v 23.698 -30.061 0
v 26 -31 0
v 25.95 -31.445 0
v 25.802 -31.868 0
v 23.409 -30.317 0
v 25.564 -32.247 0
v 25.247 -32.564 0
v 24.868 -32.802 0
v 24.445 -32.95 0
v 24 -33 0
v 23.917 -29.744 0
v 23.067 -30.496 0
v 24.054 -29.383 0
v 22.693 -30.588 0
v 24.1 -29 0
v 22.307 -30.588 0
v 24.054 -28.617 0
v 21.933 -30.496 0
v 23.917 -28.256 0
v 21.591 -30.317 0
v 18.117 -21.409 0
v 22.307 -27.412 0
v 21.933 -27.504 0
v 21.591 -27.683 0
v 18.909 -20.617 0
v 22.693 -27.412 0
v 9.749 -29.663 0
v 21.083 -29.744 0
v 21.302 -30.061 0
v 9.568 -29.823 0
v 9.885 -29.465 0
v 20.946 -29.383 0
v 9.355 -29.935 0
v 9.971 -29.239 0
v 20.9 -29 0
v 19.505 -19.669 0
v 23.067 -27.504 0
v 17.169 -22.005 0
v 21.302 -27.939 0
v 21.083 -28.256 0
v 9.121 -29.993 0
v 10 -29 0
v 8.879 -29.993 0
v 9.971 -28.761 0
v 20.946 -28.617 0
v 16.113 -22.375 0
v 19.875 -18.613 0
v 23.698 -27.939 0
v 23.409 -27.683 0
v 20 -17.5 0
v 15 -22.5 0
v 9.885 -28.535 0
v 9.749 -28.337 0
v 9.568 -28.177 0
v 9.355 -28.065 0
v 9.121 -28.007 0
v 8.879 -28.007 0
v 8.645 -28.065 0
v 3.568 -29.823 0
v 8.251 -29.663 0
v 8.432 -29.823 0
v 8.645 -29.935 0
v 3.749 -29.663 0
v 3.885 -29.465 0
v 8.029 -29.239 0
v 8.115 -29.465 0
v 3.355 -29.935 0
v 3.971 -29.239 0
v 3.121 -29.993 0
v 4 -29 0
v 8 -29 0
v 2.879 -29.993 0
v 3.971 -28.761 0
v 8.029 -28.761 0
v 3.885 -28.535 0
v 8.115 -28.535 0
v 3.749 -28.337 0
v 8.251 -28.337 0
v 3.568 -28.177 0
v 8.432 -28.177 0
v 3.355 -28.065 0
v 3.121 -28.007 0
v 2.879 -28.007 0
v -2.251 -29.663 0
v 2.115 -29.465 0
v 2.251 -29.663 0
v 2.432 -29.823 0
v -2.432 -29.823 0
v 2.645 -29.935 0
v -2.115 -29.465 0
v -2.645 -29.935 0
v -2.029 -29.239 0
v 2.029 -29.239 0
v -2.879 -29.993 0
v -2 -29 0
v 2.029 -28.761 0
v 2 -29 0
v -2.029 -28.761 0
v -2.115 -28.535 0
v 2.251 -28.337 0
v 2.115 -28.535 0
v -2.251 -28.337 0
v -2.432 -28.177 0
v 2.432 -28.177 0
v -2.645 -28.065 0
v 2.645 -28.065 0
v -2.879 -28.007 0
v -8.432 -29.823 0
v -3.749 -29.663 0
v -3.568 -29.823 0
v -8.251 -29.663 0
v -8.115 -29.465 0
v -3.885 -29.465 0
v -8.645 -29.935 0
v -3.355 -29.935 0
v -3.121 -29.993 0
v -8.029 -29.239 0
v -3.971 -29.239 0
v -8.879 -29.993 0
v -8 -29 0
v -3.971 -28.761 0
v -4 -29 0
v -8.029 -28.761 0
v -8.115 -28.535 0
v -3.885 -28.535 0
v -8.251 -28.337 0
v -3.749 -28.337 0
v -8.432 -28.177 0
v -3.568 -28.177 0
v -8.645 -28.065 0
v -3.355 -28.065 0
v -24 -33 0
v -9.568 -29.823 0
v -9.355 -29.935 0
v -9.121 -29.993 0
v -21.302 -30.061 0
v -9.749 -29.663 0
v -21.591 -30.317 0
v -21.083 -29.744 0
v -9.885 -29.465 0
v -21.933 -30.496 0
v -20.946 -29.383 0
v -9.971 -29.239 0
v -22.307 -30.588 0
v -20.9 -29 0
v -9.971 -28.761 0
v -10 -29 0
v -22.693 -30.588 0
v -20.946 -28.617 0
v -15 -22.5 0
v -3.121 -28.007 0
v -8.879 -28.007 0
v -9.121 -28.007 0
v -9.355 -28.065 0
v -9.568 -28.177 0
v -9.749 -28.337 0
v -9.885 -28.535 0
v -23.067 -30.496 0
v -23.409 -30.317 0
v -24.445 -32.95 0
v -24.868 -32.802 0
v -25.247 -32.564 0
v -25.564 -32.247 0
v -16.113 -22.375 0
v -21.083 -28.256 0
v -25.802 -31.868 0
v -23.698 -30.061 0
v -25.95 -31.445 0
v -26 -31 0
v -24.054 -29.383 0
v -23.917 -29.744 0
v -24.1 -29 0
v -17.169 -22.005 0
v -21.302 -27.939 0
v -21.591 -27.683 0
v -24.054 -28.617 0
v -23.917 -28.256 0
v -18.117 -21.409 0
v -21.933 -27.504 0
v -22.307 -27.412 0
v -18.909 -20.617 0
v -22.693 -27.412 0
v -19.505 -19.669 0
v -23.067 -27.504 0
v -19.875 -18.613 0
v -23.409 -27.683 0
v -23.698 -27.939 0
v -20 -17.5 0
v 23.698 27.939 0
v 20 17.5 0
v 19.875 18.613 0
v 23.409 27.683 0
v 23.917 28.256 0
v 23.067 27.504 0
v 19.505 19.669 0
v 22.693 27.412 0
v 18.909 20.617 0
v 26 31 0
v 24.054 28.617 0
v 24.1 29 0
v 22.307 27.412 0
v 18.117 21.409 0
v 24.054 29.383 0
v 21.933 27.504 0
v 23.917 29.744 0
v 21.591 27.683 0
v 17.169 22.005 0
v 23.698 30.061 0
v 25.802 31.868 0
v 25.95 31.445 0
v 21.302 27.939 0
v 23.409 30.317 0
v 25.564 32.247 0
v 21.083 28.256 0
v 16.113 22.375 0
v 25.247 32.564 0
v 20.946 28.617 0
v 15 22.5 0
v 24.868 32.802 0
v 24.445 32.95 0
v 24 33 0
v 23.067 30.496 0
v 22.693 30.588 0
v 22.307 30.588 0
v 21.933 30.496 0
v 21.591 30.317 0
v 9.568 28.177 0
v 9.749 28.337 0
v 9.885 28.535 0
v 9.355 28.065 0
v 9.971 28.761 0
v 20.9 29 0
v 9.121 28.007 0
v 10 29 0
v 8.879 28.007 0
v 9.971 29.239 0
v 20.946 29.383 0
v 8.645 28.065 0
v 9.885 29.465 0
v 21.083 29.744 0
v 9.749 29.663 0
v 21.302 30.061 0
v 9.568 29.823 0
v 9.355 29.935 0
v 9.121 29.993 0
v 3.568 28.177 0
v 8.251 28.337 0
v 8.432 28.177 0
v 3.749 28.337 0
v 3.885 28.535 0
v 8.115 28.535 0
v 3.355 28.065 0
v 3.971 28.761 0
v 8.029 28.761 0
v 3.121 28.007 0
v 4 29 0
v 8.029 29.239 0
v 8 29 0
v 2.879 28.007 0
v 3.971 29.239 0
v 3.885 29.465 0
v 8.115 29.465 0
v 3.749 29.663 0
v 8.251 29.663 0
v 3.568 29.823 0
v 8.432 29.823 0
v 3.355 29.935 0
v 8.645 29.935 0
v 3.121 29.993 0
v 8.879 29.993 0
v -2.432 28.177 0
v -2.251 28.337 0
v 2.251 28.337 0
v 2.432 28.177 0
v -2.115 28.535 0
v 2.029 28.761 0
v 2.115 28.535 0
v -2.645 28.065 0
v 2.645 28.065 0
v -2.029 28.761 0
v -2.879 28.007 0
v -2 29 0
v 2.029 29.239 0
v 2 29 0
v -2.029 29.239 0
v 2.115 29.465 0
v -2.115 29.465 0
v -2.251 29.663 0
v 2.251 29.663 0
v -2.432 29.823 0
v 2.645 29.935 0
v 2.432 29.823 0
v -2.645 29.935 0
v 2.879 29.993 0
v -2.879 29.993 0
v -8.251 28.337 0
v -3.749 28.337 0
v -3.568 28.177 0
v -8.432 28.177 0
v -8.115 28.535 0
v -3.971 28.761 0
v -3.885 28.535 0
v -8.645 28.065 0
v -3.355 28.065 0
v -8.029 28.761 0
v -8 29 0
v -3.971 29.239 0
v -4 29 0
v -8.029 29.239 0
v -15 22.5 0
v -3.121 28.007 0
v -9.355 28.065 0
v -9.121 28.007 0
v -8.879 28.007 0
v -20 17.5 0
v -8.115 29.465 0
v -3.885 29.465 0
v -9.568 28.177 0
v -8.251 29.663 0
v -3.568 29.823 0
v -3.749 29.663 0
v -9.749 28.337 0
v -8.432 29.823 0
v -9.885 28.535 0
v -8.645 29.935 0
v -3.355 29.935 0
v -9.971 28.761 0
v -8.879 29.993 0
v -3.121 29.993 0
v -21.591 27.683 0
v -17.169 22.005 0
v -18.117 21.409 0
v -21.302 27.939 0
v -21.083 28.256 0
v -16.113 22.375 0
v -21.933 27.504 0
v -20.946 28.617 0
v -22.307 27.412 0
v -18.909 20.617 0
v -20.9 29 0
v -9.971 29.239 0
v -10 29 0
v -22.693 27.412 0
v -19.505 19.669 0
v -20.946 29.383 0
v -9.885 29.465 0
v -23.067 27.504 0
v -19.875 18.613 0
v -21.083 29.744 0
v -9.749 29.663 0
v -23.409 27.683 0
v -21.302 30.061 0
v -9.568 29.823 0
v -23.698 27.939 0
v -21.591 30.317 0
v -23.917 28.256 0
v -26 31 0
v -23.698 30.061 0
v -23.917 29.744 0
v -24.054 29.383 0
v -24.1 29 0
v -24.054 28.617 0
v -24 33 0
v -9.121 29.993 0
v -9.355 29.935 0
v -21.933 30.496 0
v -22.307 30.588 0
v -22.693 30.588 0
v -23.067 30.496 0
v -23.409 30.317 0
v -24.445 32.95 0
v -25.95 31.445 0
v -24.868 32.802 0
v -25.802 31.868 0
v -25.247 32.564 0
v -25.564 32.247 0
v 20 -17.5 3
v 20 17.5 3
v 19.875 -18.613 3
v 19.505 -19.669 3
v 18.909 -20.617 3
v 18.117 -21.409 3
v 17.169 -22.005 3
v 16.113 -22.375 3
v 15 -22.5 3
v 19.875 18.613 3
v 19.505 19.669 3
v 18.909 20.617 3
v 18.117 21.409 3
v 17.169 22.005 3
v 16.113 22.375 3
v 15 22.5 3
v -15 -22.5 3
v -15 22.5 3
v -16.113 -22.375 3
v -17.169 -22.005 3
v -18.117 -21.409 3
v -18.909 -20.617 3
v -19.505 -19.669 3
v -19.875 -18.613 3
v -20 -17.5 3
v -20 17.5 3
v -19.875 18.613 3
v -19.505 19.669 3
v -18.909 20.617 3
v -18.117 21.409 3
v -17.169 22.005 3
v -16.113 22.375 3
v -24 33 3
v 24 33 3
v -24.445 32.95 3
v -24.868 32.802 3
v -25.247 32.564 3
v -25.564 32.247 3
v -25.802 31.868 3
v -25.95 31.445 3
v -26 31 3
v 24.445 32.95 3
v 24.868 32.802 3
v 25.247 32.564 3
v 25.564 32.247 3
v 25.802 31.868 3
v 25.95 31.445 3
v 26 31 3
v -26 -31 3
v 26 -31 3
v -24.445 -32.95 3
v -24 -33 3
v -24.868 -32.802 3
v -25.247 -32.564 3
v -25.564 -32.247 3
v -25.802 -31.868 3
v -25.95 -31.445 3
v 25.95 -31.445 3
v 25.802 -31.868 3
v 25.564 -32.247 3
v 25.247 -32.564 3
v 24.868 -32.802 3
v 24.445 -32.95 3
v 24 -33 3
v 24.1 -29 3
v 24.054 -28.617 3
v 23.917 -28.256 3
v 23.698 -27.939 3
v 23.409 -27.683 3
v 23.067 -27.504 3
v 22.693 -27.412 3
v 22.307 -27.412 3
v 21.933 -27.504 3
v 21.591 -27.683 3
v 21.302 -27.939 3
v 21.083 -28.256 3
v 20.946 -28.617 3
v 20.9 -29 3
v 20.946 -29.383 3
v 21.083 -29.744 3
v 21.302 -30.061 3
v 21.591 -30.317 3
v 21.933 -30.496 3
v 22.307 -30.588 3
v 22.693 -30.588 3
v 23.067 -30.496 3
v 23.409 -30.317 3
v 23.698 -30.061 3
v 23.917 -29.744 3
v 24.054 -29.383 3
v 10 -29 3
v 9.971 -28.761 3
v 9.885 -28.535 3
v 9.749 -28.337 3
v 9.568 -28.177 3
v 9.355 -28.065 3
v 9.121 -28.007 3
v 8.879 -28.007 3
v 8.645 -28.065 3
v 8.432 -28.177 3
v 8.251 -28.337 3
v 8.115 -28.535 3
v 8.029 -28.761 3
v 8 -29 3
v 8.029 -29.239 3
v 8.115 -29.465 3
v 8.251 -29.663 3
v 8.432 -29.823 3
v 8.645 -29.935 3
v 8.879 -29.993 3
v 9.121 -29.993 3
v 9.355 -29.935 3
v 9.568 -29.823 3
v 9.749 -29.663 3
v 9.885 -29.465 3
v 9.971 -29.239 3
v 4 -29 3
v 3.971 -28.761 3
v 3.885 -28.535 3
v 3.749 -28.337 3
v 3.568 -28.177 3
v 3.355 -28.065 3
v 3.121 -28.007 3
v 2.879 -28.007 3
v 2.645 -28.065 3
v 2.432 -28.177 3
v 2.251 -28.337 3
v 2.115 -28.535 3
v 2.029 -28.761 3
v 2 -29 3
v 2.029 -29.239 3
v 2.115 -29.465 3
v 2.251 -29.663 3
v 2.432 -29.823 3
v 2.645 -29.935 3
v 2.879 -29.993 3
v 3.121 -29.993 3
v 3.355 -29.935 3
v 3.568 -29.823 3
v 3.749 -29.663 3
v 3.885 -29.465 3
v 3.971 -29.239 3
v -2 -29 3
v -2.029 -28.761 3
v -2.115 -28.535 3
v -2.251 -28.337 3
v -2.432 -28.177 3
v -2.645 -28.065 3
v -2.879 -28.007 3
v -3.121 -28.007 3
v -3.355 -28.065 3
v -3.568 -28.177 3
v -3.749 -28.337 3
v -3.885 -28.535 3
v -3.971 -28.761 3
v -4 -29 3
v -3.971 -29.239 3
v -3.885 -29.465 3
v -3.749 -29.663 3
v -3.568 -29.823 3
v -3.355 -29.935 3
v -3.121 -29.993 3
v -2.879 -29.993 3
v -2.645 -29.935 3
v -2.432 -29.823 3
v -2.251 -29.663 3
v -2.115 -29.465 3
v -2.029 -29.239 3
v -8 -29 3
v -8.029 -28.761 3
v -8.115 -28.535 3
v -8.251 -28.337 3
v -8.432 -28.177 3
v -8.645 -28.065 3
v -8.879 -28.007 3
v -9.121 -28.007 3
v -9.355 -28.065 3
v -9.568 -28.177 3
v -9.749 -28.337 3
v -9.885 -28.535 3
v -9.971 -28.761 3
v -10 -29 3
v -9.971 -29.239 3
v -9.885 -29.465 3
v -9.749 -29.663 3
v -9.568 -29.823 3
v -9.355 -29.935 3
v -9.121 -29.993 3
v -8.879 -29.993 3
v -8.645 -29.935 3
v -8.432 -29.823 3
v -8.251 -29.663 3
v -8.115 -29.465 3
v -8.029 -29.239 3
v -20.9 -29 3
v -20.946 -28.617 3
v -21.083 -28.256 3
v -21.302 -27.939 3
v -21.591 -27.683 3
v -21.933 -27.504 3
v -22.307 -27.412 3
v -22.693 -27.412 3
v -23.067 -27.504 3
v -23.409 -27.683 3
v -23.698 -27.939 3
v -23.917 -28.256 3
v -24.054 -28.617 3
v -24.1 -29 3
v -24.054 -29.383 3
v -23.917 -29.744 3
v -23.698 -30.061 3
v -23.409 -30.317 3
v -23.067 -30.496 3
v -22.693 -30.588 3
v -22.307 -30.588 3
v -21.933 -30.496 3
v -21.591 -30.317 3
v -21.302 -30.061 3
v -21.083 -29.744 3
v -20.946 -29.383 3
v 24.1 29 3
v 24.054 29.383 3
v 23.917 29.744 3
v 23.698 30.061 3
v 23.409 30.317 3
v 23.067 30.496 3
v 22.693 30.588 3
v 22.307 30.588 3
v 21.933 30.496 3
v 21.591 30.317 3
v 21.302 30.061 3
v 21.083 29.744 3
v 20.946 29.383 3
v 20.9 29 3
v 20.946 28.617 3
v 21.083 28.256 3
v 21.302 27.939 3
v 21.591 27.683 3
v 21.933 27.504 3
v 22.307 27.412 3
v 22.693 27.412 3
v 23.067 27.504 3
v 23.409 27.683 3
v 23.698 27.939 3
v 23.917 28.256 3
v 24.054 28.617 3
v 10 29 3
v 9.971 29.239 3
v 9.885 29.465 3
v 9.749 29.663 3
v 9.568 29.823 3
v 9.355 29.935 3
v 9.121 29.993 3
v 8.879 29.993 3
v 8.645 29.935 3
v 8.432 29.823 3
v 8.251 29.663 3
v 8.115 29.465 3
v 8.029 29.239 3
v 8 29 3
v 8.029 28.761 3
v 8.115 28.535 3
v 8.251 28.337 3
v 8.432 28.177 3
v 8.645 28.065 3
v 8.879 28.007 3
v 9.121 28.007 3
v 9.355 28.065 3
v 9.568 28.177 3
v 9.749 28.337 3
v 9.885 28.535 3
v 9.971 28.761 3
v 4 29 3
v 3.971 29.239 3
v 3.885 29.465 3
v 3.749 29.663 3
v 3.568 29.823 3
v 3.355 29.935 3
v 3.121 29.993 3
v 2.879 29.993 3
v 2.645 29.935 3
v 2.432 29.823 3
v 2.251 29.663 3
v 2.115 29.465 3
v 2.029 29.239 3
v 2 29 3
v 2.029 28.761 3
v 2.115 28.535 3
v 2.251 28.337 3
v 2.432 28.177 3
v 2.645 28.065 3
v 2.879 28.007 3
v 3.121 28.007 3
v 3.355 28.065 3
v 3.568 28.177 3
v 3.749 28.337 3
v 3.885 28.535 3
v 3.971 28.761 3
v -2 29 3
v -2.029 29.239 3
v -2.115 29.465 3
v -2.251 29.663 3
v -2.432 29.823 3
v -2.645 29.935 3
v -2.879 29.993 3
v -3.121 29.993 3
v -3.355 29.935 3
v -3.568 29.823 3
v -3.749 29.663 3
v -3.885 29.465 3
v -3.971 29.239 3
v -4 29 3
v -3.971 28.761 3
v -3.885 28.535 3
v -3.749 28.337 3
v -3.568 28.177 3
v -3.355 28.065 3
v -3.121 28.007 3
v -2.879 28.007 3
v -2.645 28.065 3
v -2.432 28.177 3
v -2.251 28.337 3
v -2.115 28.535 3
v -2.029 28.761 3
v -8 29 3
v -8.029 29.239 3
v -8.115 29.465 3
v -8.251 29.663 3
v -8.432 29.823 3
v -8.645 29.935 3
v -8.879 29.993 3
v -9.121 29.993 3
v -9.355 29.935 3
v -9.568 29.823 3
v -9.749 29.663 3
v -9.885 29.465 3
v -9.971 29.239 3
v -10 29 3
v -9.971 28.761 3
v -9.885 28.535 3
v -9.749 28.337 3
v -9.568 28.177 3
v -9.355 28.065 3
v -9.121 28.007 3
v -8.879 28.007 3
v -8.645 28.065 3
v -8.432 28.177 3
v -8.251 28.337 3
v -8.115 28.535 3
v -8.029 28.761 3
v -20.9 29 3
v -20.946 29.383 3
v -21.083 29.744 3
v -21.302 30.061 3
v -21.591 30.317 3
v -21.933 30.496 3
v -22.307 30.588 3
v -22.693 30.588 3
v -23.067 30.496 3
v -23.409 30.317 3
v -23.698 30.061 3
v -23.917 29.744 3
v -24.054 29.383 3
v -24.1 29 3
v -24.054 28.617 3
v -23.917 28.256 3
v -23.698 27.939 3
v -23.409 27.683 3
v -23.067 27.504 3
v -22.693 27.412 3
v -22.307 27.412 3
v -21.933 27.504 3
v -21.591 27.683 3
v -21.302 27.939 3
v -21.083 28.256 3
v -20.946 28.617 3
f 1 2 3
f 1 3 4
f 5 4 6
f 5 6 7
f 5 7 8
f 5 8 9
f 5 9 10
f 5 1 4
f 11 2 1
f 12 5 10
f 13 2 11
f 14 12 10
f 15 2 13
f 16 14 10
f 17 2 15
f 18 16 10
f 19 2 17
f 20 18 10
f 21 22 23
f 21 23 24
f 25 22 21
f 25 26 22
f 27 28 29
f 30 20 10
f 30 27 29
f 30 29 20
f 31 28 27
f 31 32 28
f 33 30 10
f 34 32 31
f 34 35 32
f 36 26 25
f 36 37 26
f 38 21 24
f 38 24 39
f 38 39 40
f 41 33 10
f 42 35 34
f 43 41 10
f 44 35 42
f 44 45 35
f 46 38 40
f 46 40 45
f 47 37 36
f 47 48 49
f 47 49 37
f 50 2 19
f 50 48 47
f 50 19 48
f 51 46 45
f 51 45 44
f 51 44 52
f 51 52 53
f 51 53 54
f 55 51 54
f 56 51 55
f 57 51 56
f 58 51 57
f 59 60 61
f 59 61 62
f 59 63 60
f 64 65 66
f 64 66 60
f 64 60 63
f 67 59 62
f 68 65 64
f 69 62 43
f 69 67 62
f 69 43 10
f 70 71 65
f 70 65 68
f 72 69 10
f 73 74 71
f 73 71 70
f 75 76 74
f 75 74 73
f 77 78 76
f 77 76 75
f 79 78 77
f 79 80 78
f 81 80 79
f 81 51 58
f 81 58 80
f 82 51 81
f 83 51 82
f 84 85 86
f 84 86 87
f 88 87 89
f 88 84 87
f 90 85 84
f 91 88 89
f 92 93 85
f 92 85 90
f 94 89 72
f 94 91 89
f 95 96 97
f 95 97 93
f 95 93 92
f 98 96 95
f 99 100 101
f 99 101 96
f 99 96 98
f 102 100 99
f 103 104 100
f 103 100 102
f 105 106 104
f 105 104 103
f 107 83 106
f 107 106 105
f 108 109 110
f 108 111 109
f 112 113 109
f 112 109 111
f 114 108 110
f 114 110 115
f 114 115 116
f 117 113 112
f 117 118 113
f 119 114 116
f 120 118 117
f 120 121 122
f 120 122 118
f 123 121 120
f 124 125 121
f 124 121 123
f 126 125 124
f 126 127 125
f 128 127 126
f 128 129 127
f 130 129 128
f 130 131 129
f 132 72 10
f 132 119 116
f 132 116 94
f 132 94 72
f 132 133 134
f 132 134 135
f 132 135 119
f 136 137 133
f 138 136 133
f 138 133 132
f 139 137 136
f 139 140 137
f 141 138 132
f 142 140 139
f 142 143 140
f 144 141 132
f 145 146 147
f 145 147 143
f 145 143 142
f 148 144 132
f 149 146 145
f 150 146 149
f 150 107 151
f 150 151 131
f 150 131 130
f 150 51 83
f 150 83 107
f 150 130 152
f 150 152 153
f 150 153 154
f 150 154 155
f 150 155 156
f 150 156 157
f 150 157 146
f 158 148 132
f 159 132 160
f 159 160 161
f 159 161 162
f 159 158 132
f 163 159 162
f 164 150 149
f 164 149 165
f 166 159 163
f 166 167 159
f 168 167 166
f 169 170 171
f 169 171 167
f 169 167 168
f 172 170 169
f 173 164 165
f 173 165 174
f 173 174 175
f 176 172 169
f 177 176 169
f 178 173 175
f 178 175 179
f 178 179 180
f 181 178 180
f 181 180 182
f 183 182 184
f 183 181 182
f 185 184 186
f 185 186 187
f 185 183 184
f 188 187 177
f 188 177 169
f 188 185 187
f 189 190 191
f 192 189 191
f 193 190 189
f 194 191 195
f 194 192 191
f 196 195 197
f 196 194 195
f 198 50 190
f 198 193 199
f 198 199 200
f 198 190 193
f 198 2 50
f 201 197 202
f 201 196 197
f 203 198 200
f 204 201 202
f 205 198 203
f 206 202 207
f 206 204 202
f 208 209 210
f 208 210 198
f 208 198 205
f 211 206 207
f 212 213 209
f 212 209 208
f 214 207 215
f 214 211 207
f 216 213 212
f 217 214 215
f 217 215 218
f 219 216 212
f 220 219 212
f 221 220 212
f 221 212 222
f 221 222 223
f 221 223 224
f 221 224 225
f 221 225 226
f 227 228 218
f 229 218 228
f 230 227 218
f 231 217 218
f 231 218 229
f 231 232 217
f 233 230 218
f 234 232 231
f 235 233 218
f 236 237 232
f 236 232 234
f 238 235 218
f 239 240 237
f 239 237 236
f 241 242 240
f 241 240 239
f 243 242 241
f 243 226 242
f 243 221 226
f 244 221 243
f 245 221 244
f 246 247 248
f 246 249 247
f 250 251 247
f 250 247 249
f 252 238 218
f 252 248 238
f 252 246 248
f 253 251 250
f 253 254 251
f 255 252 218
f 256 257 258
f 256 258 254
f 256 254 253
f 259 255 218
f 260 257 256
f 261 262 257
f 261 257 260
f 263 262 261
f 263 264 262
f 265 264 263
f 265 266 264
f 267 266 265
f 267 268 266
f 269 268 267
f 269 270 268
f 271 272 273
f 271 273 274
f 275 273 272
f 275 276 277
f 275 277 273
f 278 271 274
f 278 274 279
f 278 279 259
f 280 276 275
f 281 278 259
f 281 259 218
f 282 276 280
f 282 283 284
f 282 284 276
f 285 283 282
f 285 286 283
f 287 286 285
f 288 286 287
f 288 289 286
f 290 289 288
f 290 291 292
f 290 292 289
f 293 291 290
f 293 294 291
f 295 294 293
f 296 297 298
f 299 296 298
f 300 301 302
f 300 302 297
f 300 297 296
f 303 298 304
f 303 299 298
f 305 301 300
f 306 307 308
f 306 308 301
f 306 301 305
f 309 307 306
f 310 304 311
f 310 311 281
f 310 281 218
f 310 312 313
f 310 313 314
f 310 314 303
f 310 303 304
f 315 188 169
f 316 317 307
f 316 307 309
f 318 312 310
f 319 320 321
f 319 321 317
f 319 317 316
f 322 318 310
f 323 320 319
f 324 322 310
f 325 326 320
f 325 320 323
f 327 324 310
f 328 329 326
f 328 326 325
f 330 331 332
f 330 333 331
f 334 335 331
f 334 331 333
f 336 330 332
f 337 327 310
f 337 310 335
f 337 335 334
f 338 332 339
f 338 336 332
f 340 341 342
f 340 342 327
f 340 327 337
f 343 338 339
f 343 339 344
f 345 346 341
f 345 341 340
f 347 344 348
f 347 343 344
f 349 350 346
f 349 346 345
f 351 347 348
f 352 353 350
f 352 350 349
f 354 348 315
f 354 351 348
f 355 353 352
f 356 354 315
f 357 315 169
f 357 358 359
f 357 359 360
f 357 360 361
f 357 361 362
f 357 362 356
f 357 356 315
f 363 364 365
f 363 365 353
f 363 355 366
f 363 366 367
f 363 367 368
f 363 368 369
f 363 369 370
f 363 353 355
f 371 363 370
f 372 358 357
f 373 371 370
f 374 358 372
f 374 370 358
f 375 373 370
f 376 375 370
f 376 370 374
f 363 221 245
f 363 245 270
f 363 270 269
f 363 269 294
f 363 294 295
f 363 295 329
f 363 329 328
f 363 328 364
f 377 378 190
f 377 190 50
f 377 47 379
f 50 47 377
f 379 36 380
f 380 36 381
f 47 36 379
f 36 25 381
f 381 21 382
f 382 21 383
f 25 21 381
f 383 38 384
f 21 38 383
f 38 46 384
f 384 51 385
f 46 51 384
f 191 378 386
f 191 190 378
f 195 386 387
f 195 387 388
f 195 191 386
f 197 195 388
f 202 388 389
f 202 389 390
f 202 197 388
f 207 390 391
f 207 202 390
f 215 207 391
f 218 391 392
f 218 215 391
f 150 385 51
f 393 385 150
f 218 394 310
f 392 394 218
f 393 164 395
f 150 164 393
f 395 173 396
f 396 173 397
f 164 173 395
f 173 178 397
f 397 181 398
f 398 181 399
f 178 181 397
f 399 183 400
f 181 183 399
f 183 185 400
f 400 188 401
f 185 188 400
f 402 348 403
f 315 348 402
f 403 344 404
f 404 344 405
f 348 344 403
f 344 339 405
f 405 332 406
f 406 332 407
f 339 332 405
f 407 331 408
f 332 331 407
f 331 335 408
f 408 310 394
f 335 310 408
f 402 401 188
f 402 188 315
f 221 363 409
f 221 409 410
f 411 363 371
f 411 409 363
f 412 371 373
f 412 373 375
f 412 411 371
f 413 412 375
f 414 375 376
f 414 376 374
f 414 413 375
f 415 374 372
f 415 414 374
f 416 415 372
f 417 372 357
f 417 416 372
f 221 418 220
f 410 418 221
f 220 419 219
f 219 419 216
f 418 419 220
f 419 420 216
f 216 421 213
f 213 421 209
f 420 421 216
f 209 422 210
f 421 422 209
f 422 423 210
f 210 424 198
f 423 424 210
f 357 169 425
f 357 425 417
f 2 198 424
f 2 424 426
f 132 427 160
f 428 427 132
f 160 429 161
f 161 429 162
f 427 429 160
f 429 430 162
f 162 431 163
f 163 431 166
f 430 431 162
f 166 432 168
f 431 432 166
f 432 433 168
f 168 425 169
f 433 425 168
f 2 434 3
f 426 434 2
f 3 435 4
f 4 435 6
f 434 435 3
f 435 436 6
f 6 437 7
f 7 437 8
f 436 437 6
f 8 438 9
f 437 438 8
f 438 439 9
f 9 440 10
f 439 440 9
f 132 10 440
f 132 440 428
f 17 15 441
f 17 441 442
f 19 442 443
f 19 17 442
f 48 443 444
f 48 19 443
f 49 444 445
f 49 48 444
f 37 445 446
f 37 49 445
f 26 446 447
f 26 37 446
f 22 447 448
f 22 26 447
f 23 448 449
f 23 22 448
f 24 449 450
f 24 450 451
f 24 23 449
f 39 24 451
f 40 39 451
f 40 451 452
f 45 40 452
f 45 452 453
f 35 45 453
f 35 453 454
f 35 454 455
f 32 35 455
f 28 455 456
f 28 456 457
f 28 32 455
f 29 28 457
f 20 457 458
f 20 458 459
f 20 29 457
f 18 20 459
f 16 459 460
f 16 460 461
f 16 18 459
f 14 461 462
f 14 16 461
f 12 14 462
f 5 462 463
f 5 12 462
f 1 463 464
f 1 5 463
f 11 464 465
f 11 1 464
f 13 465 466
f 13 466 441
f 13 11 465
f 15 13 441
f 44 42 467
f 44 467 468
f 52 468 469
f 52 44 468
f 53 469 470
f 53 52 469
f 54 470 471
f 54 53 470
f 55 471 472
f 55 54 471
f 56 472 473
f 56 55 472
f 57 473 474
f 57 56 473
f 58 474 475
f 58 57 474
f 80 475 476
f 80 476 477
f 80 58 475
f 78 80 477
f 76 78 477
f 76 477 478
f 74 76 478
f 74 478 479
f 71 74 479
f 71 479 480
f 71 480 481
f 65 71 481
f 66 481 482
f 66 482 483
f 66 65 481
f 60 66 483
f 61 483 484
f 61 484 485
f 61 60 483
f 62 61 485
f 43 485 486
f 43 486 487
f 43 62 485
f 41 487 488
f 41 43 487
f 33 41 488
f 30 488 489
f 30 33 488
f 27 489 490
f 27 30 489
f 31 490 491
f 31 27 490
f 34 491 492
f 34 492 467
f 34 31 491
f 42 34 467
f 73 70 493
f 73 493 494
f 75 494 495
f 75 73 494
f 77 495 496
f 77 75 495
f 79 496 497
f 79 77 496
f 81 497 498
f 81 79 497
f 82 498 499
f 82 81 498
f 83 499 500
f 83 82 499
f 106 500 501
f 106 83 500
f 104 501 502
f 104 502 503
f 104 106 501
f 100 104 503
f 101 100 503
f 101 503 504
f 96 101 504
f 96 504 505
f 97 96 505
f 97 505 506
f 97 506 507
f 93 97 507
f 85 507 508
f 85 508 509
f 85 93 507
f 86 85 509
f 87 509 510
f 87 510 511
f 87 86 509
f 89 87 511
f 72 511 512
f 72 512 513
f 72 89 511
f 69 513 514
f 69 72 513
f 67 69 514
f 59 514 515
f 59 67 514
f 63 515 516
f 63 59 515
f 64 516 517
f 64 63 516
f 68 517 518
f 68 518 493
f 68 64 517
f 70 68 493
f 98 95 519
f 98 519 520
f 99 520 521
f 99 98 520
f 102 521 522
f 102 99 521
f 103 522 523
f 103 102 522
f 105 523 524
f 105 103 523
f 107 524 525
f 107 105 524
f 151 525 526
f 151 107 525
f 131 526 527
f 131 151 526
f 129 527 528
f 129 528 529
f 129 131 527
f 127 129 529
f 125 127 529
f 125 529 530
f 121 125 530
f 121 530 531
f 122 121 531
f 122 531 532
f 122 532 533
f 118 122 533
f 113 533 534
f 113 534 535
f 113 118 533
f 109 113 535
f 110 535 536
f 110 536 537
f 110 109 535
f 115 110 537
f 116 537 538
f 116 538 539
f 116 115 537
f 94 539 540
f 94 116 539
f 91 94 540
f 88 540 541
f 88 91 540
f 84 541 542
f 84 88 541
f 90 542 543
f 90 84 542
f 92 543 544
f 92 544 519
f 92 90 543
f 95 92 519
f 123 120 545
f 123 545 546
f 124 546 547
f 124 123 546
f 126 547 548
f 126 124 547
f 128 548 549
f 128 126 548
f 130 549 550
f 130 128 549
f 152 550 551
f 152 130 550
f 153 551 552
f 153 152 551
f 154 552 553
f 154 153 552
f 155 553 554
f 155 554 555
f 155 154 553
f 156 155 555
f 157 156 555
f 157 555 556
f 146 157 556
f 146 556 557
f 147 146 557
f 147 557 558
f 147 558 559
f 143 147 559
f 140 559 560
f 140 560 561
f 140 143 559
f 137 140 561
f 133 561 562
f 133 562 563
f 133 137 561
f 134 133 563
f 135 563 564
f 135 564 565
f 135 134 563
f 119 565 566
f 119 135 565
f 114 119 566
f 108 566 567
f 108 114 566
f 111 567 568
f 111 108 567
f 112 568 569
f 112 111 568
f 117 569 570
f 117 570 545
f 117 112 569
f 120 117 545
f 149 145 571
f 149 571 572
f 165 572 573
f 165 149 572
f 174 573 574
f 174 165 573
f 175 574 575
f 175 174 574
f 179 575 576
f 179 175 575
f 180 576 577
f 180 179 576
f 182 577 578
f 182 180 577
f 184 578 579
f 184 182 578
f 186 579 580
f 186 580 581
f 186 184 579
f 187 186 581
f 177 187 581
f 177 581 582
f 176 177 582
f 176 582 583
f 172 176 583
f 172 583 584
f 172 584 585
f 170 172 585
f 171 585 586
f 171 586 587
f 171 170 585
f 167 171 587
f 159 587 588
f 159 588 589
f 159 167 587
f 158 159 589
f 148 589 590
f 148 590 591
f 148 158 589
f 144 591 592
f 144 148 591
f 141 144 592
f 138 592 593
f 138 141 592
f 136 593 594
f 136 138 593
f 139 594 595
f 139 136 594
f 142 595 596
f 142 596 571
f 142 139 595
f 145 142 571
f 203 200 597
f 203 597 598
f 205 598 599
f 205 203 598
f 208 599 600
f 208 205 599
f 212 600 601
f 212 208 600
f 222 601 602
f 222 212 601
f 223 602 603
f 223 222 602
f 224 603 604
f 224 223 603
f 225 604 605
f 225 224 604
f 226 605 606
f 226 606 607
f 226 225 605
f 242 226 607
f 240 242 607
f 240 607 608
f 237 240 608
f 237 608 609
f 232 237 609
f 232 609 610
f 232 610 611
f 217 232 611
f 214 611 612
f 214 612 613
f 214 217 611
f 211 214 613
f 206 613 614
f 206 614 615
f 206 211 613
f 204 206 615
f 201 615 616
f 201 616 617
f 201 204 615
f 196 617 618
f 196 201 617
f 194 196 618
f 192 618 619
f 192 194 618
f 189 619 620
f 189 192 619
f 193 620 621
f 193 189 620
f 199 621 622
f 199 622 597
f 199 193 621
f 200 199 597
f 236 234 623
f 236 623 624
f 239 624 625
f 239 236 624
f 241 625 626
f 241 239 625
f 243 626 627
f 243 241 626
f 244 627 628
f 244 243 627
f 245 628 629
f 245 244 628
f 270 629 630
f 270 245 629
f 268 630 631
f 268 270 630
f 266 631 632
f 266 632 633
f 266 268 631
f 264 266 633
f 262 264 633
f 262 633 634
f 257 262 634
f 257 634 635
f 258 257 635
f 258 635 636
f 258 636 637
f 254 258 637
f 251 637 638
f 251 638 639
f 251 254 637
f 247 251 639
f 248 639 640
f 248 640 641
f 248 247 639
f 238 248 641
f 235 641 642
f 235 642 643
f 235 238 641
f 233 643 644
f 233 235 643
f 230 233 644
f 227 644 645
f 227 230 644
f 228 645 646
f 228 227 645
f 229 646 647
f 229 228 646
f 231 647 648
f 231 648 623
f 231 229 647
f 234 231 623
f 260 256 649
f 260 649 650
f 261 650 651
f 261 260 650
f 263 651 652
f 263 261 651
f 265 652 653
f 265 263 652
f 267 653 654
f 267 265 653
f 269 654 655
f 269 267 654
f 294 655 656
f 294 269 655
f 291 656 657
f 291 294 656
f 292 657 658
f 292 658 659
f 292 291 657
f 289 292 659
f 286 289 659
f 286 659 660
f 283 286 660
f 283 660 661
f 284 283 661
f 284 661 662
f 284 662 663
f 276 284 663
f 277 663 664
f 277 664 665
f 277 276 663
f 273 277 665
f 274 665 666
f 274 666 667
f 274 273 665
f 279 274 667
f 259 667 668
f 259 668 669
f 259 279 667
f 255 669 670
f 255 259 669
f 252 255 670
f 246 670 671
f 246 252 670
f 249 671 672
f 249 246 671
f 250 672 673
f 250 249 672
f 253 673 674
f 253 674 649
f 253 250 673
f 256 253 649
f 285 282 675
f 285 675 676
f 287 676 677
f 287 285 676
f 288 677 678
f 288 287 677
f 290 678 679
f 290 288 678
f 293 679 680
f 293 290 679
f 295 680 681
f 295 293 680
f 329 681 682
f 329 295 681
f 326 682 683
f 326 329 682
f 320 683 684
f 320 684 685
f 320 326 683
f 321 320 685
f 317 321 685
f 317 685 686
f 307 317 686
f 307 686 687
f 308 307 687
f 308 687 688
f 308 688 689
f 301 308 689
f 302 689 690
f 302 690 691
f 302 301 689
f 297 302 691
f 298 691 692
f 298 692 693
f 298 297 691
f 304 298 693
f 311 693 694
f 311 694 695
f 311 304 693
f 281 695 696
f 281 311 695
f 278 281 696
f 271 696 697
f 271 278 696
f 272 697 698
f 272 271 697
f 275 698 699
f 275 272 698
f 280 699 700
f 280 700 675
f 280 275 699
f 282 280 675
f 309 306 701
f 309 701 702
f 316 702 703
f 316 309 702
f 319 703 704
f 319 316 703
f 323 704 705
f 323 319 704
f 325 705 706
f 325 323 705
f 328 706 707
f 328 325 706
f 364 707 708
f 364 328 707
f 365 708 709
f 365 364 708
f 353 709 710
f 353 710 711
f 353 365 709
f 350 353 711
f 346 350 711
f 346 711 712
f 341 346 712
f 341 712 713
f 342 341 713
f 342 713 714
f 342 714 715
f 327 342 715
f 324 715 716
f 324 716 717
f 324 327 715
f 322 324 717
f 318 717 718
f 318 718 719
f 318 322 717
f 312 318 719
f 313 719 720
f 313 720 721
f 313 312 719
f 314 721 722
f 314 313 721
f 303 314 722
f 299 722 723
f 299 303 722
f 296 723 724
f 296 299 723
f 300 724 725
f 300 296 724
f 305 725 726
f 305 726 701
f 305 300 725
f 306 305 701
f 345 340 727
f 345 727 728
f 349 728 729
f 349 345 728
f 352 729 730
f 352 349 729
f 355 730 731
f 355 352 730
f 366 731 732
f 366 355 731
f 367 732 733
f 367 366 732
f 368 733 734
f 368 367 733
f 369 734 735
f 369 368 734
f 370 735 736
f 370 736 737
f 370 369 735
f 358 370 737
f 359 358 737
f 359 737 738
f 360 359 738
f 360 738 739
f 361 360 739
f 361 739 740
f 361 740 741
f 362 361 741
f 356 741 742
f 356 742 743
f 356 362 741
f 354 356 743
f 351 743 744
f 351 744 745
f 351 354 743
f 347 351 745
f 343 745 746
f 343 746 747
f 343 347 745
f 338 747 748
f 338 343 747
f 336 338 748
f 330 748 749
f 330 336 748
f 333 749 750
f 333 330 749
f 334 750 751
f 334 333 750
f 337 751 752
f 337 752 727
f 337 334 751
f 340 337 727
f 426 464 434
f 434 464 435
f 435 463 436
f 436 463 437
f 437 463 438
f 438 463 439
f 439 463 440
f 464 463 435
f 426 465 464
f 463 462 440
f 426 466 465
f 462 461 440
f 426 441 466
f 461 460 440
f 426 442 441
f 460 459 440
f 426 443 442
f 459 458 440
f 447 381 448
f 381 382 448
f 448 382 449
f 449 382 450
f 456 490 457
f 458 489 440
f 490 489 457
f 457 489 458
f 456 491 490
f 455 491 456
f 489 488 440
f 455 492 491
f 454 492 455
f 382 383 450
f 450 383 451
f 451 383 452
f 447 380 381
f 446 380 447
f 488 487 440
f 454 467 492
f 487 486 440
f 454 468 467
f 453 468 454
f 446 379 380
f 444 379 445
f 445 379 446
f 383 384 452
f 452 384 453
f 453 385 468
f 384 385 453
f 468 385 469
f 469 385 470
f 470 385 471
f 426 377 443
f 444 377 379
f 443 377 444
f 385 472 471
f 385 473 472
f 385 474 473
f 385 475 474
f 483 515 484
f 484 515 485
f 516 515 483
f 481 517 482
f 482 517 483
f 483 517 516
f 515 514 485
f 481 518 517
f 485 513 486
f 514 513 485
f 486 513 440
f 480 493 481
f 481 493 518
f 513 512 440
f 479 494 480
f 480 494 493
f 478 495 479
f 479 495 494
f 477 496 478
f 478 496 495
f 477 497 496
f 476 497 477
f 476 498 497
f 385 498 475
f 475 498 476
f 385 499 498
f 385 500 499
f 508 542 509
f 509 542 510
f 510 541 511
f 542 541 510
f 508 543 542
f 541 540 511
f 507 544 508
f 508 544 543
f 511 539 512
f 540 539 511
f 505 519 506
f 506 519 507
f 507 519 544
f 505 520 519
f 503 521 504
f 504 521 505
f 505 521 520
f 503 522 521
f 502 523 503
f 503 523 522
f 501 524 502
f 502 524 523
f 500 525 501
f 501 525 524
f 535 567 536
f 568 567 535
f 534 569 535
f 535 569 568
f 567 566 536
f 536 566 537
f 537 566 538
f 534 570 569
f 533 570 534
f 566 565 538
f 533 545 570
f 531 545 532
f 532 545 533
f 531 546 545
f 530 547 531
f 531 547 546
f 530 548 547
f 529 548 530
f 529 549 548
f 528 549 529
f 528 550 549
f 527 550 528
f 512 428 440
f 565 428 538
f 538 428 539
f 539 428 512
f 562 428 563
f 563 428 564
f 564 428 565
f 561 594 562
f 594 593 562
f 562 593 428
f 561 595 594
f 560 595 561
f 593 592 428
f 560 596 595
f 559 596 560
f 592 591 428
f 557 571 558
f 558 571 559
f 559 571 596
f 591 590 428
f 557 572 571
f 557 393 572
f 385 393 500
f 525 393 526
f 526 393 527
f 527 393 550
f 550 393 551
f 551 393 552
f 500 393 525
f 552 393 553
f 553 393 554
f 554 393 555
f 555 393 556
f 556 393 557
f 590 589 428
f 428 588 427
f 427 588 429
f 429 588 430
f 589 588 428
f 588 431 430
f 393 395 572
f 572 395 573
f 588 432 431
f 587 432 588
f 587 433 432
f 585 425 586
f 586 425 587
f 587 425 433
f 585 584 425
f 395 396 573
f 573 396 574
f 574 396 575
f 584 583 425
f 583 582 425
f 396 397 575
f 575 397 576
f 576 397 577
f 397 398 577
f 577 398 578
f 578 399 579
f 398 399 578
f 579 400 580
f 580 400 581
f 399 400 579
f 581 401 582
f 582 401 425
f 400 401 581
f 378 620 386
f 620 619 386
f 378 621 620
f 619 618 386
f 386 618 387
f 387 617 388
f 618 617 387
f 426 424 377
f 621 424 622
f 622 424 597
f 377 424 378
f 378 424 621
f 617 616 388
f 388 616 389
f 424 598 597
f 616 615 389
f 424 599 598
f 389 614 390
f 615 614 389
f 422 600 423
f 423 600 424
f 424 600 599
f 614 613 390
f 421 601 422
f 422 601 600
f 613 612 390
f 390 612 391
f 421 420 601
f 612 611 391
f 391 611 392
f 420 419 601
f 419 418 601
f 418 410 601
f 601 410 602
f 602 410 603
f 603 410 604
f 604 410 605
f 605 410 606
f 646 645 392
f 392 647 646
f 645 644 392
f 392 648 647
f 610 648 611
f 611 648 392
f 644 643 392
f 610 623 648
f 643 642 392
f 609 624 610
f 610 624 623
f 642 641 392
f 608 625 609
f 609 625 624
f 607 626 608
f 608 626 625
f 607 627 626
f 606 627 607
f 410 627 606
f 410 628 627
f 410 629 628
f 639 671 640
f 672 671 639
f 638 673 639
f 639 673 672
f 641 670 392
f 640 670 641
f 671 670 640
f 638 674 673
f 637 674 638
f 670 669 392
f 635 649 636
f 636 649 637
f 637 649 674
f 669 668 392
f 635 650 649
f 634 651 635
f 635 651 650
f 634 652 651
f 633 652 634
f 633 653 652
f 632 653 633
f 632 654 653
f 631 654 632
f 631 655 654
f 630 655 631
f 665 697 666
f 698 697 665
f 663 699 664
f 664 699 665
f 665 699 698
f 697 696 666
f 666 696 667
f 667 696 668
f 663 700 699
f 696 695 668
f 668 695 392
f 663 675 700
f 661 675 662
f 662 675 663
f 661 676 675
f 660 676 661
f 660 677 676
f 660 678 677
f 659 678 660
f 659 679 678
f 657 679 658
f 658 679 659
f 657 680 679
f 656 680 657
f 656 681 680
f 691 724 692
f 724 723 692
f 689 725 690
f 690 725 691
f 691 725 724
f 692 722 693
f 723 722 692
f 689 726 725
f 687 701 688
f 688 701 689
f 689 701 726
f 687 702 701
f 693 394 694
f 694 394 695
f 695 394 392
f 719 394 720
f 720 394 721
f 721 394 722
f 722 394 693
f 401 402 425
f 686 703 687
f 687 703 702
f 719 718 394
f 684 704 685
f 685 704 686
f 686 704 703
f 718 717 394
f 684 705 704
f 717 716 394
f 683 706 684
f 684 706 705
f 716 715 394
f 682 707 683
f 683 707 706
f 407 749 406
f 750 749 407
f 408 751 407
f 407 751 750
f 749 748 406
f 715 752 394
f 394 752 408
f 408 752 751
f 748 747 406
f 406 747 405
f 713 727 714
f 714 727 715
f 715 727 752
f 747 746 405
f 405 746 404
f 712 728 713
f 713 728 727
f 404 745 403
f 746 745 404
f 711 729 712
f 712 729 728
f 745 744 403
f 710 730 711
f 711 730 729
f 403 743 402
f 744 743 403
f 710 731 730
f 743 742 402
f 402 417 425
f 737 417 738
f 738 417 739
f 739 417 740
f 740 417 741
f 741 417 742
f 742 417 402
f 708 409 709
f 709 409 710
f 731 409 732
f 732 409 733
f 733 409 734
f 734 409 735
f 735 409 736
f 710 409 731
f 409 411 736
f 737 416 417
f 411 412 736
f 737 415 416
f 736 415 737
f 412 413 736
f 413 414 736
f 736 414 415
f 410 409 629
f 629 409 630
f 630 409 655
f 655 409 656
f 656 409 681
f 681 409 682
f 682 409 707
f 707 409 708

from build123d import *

# Parameters (mm, degrees)
SKETCH_W     = 52
SKETCH_H     = 66
SKETCH_R     = 1.6
SKETCH_R_2   = 1
PAD_DEPTH    = 3
FILLET_R     = 2
SKETCH001_W  = 40
SKETCH001_H  = 45
POCKET_DEPTH = 5
FILLET001_R  = 5


with BuildPart() as part:
    # Sketch → Pad (new body)
    with BuildSketch(Plane.XY):
        Rectangle(SKETCH_W, SKETCH_H)
        with Locations((-22.5, 29)):
            Circle(SKETCH_R, mode=Mode.SUBTRACT)
        with Locations((-9, 29)):
            Circle(SKETCH_R_2, mode=Mode.SUBTRACT)
        with Locations((-3, 29)):
            Circle(SKETCH_R_2, mode=Mode.SUBTRACT)
        with Locations((3, 29)):
            Circle(SKETCH_R_2, mode=Mode.SUBTRACT)
        with Locations((9, 29)):
            Circle(SKETCH_R_2, mode=Mode.SUBTRACT)
        with Locations((22.5, 29)):
            Circle(SKETCH_R, mode=Mode.SUBTRACT)
        with Locations((-22.5, -29)):
            Circle(SKETCH_R, mode=Mode.SUBTRACT)
        with Locations((-9, -29)):
            Circle(SKETCH_R_2, mode=Mode.SUBTRACT)
        with Locations((-3, -29)):
            Circle(SKETCH_R_2, mode=Mode.SUBTRACT)
        with Locations((3, -29)):
            Circle(SKETCH_R_2, mode=Mode.SUBTRACT)
        with Locations((9, -29)):
            Circle(SKETCH_R_2, mode=Mode.SUBTRACT)
        with Locations((22.5, -29)):
            Circle(SKETCH_R, mode=Mode.SUBTRACT)
    extrude(amount=PAD_DEPTH)

    # Fillet
    fillet_edges = [part.edges().sort_by_distance(p)[0] for p in [
        (26, -33, 1.5),
        (-26, -33, 1.5),
        (26, 33, 1.5),
        (-26, 33, 1.5),
    ]]
    fillet(fillet_edges, radius=FILLET_R)

    # Sketch001 (on Face5 of Fillet) → Pocket (cut)
    with BuildSketch(Plane.XY.offset(3)):
        Rectangle(SKETCH001_W, SKETCH001_H)
    extrude(amount=-POCKET_DEPTH, mode=Mode.SUBTRACT)

    # Fillet001
    fillet001_edges = [part.edges().sort_by_distance(p)[0] for p in [
        (20, -22.5, 1.5),
        (-20, 22.5, 1.5),
        (20, 22.5, 1.5),
        (-20, -22.5, 1.5),
    ]]
    fillet(fillet001_edges, radius=FILLET001_R)


solid = part.part
